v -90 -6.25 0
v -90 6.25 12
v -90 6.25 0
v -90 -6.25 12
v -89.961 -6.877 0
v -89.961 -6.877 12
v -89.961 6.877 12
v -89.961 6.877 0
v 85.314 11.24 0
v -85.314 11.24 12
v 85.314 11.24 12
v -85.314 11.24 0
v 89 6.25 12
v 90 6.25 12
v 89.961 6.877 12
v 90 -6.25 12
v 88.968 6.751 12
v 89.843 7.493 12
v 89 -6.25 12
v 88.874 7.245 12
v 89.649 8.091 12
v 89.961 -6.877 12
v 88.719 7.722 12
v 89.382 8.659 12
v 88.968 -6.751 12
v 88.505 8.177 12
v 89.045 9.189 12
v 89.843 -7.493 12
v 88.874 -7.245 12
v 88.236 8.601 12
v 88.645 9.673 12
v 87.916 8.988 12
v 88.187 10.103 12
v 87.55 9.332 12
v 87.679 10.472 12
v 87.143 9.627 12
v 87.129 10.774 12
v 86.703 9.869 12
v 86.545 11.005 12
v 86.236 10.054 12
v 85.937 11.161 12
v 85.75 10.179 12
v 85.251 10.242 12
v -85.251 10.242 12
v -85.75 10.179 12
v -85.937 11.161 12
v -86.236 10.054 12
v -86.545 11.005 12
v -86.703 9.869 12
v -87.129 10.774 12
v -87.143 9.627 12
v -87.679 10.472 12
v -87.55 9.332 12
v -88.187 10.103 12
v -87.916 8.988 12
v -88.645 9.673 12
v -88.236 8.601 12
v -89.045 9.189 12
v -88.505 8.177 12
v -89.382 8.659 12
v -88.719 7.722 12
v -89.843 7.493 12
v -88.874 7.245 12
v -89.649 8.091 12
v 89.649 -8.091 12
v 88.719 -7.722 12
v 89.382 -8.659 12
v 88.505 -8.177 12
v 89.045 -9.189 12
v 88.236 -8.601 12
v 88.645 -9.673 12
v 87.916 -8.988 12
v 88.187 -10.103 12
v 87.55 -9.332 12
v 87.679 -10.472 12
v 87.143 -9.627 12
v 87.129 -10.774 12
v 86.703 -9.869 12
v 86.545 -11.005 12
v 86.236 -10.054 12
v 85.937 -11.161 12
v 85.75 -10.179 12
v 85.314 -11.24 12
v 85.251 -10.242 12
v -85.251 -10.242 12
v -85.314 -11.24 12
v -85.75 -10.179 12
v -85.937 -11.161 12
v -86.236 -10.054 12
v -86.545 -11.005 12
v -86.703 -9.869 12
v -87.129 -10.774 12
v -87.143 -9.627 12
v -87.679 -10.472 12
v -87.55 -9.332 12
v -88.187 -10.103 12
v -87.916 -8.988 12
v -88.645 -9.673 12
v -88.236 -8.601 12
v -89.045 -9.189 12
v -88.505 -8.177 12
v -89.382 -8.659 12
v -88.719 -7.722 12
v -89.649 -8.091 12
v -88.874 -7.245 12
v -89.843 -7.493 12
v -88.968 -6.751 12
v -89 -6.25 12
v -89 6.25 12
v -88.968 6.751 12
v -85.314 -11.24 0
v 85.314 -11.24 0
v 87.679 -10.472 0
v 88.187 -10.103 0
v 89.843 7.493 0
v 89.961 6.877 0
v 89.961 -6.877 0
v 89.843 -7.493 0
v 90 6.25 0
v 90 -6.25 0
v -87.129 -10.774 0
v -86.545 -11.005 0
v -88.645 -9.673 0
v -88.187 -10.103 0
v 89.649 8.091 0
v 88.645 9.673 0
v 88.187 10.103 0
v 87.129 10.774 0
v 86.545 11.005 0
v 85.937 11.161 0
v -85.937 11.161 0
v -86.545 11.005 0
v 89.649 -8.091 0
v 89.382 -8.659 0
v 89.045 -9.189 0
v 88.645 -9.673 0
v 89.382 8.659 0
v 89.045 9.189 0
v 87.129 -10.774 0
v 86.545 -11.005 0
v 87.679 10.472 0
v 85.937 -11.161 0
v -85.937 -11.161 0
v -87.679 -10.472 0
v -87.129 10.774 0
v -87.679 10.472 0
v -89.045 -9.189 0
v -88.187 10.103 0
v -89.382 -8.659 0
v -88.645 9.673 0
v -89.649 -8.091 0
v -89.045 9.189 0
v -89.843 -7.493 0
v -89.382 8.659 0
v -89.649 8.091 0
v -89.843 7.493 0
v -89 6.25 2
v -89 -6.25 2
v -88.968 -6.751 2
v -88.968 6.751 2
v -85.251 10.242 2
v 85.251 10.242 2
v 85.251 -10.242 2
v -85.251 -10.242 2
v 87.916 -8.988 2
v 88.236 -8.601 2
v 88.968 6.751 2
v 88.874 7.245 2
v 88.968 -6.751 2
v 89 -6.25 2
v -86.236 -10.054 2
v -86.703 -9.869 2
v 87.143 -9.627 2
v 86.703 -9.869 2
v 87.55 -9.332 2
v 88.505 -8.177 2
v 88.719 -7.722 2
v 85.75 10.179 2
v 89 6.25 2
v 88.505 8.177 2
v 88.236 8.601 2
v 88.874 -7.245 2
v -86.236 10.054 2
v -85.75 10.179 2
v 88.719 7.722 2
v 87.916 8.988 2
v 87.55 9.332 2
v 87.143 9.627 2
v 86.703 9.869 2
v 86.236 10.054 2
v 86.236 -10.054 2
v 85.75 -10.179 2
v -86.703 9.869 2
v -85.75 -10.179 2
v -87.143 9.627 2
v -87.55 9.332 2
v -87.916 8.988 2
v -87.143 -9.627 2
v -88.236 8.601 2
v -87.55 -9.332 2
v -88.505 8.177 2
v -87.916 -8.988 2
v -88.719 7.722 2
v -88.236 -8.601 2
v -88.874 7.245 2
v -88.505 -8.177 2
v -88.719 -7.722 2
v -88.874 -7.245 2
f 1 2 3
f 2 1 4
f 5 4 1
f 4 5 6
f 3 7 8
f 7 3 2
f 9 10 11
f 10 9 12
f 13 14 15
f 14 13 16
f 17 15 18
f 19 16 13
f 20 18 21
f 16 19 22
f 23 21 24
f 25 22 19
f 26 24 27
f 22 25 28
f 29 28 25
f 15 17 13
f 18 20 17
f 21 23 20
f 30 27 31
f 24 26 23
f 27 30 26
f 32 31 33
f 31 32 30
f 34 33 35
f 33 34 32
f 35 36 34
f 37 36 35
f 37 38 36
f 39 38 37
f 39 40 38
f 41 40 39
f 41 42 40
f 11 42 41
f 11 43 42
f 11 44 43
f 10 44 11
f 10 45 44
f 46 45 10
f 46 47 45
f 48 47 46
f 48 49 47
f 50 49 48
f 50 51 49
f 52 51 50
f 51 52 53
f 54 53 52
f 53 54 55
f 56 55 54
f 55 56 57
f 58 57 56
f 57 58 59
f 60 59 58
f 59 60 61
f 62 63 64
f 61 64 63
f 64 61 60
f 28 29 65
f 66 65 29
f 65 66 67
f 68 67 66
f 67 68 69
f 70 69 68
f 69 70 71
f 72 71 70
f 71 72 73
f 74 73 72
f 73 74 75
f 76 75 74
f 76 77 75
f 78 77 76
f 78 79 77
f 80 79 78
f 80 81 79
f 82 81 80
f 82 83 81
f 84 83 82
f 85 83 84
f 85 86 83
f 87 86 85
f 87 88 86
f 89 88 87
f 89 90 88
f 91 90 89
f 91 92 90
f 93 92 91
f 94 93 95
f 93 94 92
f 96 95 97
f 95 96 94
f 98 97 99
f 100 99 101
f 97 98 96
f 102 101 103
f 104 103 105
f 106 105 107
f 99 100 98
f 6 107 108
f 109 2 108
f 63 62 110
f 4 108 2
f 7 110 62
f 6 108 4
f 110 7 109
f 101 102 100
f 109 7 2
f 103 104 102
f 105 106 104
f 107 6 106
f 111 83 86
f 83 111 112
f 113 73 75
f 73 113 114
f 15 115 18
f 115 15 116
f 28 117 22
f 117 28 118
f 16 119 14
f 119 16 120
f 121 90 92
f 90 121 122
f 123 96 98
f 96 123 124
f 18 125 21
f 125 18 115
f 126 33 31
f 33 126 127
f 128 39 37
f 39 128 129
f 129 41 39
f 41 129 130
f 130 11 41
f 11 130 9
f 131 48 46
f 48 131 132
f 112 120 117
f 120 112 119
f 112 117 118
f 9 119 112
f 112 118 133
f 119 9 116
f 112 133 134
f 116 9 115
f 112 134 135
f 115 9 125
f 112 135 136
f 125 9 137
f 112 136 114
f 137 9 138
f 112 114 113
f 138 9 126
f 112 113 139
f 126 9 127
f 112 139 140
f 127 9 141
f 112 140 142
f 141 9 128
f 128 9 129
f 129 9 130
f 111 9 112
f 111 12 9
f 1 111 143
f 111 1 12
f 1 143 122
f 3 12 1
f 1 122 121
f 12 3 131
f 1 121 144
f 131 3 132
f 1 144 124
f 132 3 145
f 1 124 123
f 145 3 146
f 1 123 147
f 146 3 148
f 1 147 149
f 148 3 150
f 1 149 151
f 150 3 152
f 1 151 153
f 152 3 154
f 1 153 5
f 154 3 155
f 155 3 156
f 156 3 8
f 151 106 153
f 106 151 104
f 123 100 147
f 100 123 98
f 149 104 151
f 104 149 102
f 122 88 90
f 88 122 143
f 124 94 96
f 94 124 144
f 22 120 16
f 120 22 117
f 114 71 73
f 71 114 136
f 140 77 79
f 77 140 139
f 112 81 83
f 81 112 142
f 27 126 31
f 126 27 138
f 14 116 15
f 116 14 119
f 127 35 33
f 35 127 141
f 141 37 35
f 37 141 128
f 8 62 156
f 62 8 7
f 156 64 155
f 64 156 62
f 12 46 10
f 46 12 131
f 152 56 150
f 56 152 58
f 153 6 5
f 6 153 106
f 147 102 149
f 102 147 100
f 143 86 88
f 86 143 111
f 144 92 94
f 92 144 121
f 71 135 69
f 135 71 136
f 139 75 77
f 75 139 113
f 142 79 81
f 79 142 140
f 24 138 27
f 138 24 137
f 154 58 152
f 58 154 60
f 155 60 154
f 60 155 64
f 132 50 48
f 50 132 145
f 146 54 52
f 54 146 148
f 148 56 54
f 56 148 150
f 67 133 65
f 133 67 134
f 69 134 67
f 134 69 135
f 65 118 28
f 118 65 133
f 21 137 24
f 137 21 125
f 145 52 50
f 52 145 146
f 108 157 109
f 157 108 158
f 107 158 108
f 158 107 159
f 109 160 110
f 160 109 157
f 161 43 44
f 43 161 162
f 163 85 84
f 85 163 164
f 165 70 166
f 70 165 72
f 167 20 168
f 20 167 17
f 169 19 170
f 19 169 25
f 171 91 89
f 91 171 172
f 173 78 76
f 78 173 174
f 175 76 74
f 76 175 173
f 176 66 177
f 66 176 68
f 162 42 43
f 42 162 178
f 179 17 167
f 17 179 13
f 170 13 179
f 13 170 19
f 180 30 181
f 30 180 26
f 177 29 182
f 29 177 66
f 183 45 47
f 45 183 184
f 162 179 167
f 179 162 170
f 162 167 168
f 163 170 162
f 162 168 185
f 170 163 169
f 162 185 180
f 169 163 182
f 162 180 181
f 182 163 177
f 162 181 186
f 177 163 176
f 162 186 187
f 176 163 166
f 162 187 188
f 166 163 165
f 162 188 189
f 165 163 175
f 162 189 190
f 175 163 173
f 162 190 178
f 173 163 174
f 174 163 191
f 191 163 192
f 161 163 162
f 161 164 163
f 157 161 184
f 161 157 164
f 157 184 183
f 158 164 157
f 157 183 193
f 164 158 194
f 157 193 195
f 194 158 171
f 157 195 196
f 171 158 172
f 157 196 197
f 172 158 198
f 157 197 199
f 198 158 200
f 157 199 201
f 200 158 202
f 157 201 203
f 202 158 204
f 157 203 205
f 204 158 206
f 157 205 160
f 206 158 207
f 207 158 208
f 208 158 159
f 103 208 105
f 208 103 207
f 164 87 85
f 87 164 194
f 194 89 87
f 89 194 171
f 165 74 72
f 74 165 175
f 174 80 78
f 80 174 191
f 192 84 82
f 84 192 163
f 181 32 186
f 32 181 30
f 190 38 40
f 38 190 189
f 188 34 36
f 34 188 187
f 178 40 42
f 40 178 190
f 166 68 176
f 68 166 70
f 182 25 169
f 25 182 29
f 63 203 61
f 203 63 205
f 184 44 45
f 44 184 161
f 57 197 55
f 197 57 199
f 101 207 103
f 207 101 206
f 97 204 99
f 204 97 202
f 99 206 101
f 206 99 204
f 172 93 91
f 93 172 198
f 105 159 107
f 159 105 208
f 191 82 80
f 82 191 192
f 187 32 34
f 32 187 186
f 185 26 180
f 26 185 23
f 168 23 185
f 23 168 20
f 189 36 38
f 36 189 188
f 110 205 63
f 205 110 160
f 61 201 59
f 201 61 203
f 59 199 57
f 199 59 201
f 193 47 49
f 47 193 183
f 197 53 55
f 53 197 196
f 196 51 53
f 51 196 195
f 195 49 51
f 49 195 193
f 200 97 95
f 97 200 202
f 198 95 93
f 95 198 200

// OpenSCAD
$fn = 50;


difference() {
	union() {
		hull() {
			translate(v = [-85.0000000000, 6.2500000000, 0]) {
				cylinder(h = 12, r = 5);
			}
			translate(v = [85.0000000000, 6.2500000000, 0]) {
				cylinder(h = 12, r = 5);
			}
			translate(v = [-85.0000000000, -6.2500000000, 0]) {
				cylinder(h = 12, r = 5);
			}
			translate(v = [85.0000000000, -6.2500000000, 0]) {
				cylinder(h = 12, r = 5);
			}
		}
	}
	union() {
		translate(v = [0, 0, 2]) {
			hull() {
				translate(v = [-85.0000000000, 6.2500000000, 0]) {
					cylinder(h = 10, r = 4);
				}
				translate(v = [85.0000000000, 6.2500000000, 0]) {
					cylinder(h = 10, r = 4);
				}
				translate(v = [-85.0000000000, -6.2500000000, 0]) {
					cylinder(h = 10, r = 4);
				}
				translate(v = [85.0000000000, -6.2500000000, 0]) {
					cylinder(h = 10, r = 4);
				}
			}
		}
	}
}
